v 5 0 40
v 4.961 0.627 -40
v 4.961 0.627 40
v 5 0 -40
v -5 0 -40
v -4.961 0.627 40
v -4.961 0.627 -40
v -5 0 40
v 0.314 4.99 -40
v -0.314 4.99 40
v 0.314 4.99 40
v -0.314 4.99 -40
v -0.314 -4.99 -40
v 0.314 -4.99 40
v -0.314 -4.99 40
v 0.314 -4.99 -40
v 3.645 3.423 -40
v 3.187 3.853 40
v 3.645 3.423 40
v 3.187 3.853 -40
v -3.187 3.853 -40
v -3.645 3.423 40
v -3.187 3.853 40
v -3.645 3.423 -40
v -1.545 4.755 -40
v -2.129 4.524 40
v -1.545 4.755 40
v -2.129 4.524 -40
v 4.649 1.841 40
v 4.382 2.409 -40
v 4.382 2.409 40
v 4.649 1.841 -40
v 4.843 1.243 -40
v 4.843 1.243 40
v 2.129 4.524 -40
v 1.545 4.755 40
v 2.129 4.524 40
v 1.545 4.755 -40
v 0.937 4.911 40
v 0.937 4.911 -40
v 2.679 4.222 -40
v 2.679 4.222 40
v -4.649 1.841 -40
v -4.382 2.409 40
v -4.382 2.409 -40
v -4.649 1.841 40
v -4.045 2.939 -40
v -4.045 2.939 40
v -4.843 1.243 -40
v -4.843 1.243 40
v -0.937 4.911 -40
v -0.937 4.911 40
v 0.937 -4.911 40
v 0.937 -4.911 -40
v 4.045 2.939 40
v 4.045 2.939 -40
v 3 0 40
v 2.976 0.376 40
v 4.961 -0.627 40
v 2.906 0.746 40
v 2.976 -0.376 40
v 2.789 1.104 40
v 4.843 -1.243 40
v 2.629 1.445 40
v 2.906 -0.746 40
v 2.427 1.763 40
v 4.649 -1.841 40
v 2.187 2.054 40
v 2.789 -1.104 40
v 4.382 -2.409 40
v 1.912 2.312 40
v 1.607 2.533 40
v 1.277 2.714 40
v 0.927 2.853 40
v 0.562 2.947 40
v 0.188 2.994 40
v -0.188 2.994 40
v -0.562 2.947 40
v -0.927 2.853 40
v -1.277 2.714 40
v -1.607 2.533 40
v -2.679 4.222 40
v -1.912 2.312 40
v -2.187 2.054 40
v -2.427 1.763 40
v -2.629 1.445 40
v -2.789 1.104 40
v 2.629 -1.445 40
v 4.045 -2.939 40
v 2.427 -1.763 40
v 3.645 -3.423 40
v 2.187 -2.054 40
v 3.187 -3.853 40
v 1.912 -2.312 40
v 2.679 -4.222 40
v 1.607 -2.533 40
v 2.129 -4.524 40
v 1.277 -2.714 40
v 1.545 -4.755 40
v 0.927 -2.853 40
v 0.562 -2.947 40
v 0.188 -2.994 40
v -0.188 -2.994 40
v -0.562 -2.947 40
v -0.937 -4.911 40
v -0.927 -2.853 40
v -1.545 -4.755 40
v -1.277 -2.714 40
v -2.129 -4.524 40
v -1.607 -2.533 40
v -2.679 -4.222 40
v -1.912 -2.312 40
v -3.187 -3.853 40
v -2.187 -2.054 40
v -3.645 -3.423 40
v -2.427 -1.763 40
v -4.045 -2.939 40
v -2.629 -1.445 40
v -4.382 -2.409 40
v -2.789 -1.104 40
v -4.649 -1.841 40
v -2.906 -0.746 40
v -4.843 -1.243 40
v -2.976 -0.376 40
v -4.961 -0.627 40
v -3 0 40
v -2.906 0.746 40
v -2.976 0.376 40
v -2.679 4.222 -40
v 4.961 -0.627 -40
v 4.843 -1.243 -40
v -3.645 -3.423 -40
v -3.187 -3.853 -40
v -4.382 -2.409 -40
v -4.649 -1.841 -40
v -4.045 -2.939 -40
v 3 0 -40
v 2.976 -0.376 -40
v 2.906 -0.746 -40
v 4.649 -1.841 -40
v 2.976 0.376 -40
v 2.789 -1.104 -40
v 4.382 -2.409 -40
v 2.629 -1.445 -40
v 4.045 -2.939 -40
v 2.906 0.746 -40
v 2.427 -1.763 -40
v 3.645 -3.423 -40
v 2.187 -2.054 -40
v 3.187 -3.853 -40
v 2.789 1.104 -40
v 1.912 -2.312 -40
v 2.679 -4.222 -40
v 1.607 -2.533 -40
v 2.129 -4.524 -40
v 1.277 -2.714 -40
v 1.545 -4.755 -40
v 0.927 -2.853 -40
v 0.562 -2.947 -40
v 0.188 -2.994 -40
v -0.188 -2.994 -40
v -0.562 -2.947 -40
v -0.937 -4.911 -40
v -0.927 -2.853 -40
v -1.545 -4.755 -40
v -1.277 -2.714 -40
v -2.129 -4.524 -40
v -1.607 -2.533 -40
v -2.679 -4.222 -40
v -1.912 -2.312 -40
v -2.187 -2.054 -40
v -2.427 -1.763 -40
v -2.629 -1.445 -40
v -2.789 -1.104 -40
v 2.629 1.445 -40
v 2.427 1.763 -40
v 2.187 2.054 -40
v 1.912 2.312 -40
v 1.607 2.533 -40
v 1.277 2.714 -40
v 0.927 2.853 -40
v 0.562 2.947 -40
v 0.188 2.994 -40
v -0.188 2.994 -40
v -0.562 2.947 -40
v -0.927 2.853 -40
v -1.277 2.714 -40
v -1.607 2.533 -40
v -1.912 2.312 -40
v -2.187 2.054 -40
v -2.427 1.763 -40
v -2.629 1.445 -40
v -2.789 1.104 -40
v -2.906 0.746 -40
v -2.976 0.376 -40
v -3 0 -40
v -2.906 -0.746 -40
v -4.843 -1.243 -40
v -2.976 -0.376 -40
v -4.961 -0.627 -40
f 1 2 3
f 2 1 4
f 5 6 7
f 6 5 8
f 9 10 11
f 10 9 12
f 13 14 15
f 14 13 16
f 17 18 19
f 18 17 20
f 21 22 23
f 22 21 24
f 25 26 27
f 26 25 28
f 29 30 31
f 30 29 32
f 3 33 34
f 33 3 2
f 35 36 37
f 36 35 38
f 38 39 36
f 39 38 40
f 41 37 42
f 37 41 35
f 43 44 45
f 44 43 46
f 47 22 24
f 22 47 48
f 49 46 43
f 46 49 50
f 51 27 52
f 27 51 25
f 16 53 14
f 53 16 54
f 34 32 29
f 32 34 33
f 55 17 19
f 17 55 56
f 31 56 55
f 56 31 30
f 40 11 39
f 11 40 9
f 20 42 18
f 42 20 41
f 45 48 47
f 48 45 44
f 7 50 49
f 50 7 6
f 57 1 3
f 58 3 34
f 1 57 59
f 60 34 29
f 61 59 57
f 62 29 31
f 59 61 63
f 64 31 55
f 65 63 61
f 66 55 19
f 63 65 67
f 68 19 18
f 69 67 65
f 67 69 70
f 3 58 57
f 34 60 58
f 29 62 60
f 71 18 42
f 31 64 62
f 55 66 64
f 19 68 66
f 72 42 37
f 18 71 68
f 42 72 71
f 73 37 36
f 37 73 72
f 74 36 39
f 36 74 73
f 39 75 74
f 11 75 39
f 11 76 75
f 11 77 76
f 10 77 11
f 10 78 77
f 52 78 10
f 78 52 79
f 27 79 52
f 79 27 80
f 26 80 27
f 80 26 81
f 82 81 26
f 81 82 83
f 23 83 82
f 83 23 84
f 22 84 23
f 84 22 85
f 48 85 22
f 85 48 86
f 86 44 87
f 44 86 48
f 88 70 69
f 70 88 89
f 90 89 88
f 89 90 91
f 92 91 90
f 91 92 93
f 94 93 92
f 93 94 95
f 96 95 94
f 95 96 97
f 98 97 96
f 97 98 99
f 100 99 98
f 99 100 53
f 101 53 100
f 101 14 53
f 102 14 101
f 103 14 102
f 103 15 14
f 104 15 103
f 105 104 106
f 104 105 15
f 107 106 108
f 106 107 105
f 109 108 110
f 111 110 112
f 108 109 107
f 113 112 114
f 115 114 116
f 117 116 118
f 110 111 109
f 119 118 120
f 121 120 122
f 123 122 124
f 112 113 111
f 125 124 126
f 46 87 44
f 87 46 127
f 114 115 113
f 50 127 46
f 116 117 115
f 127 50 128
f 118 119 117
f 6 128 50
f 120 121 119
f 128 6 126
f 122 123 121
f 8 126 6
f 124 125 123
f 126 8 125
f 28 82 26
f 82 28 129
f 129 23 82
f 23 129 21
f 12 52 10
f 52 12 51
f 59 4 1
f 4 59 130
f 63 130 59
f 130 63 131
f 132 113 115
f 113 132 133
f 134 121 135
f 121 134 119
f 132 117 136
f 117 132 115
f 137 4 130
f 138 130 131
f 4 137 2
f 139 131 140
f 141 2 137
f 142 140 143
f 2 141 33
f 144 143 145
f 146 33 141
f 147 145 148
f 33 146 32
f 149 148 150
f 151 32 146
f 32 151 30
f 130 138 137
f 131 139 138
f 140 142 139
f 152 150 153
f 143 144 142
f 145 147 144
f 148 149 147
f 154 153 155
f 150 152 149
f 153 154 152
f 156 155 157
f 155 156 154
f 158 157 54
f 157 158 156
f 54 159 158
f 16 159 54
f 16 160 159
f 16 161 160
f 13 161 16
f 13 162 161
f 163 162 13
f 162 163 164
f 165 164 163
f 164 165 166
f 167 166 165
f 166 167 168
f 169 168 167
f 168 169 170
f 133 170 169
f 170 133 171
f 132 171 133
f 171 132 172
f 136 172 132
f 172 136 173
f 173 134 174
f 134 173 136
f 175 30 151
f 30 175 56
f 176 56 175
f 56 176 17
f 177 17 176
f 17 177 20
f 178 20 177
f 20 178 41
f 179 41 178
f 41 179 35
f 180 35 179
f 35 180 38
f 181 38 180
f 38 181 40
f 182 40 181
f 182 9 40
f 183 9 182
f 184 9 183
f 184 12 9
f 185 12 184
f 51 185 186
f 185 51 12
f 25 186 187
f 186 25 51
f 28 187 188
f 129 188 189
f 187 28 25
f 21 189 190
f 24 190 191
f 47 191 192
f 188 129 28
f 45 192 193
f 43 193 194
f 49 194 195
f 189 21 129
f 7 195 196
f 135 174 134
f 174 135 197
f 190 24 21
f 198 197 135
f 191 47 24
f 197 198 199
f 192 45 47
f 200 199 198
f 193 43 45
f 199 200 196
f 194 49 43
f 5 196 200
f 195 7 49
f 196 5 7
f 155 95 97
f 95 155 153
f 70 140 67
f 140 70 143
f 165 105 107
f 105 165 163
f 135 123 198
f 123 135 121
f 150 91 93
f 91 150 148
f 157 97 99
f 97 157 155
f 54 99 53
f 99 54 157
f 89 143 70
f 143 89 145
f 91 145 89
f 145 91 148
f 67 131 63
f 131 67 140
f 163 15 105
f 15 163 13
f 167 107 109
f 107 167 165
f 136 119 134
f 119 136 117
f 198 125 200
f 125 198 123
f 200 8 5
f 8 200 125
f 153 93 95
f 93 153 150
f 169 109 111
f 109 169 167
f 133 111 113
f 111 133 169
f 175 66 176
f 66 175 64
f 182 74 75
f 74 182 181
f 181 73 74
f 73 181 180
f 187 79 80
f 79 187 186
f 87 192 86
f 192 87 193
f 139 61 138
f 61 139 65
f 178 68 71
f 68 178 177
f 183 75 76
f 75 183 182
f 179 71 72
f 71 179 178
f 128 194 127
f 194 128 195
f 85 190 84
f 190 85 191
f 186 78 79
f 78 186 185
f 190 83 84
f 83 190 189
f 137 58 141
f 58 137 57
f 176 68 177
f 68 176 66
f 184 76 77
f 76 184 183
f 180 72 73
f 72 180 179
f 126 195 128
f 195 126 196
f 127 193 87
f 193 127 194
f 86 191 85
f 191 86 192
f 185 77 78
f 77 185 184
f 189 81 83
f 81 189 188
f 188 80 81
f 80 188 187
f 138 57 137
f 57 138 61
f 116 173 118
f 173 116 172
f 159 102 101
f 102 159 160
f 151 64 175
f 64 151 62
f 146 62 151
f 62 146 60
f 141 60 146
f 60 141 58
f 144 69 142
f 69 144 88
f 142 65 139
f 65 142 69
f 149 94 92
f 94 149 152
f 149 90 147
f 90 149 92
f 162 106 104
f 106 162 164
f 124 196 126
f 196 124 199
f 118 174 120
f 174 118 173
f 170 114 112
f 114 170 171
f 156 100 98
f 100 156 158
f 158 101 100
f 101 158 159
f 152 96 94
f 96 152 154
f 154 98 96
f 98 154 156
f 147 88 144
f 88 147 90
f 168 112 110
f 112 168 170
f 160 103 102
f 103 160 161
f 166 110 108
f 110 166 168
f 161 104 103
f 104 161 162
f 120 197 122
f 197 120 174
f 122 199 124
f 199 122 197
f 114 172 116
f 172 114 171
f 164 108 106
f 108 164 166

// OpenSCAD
$fn = 50;


difference() {
	union() {
		translate(v = [0, 0, -40.0000000000]) {
			cylinder(h = 80, r = 5.0000000000);
		}
	}
	union() {
		translate(v = [0, 0, -100.0000000000]) {
			cylinder(h = 200, r = 3);
		}
	}
}
